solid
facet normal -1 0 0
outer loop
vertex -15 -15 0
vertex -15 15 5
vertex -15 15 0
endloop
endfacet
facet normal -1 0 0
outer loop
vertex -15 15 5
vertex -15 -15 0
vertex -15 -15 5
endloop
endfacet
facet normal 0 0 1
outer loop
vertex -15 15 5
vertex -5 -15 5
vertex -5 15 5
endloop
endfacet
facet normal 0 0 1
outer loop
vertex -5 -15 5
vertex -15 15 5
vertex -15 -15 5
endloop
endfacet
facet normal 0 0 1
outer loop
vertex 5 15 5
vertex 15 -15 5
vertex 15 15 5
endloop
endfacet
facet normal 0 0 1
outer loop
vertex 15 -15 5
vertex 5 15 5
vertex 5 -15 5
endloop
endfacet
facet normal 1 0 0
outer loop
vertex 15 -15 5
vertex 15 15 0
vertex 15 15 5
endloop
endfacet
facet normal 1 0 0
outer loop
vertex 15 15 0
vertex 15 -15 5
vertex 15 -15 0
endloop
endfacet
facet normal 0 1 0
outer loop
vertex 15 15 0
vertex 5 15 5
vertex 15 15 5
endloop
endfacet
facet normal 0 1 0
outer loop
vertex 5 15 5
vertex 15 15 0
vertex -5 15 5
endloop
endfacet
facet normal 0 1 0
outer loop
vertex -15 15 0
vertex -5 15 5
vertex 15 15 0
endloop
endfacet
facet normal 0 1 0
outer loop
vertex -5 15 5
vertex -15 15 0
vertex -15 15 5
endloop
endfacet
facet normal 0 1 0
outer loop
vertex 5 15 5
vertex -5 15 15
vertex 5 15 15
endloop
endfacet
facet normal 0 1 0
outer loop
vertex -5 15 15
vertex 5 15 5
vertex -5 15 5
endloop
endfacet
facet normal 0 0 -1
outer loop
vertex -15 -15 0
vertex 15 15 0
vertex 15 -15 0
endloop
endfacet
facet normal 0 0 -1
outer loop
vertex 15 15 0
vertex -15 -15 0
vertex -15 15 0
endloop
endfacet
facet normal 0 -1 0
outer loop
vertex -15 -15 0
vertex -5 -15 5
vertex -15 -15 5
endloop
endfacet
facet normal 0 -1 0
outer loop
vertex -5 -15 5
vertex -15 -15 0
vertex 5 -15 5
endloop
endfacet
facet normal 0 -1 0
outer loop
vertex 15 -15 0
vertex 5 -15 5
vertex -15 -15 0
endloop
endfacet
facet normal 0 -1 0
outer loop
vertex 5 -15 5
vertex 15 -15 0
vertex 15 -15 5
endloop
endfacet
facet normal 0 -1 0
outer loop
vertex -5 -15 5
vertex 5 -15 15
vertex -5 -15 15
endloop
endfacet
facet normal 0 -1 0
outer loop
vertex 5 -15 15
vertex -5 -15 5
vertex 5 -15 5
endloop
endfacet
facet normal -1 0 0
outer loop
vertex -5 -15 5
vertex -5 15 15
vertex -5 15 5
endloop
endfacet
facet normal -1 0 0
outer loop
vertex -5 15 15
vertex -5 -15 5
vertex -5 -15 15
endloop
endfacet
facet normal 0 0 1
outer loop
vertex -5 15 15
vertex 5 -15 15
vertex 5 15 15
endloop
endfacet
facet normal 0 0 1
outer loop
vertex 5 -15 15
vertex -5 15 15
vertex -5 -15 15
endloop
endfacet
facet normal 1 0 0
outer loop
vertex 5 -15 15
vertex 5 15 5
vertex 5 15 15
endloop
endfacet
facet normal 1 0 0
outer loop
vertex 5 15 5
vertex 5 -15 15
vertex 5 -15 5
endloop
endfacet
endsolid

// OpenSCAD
module holder(x = 0, y = 0) {
    translate([x,y,0]) {
        difference() {
            union() {
                cube([30,30,5]);
                translate([10,0,5]) cube([10,30,10]);
            }
        }
    }
}

holder(-15,-15);
